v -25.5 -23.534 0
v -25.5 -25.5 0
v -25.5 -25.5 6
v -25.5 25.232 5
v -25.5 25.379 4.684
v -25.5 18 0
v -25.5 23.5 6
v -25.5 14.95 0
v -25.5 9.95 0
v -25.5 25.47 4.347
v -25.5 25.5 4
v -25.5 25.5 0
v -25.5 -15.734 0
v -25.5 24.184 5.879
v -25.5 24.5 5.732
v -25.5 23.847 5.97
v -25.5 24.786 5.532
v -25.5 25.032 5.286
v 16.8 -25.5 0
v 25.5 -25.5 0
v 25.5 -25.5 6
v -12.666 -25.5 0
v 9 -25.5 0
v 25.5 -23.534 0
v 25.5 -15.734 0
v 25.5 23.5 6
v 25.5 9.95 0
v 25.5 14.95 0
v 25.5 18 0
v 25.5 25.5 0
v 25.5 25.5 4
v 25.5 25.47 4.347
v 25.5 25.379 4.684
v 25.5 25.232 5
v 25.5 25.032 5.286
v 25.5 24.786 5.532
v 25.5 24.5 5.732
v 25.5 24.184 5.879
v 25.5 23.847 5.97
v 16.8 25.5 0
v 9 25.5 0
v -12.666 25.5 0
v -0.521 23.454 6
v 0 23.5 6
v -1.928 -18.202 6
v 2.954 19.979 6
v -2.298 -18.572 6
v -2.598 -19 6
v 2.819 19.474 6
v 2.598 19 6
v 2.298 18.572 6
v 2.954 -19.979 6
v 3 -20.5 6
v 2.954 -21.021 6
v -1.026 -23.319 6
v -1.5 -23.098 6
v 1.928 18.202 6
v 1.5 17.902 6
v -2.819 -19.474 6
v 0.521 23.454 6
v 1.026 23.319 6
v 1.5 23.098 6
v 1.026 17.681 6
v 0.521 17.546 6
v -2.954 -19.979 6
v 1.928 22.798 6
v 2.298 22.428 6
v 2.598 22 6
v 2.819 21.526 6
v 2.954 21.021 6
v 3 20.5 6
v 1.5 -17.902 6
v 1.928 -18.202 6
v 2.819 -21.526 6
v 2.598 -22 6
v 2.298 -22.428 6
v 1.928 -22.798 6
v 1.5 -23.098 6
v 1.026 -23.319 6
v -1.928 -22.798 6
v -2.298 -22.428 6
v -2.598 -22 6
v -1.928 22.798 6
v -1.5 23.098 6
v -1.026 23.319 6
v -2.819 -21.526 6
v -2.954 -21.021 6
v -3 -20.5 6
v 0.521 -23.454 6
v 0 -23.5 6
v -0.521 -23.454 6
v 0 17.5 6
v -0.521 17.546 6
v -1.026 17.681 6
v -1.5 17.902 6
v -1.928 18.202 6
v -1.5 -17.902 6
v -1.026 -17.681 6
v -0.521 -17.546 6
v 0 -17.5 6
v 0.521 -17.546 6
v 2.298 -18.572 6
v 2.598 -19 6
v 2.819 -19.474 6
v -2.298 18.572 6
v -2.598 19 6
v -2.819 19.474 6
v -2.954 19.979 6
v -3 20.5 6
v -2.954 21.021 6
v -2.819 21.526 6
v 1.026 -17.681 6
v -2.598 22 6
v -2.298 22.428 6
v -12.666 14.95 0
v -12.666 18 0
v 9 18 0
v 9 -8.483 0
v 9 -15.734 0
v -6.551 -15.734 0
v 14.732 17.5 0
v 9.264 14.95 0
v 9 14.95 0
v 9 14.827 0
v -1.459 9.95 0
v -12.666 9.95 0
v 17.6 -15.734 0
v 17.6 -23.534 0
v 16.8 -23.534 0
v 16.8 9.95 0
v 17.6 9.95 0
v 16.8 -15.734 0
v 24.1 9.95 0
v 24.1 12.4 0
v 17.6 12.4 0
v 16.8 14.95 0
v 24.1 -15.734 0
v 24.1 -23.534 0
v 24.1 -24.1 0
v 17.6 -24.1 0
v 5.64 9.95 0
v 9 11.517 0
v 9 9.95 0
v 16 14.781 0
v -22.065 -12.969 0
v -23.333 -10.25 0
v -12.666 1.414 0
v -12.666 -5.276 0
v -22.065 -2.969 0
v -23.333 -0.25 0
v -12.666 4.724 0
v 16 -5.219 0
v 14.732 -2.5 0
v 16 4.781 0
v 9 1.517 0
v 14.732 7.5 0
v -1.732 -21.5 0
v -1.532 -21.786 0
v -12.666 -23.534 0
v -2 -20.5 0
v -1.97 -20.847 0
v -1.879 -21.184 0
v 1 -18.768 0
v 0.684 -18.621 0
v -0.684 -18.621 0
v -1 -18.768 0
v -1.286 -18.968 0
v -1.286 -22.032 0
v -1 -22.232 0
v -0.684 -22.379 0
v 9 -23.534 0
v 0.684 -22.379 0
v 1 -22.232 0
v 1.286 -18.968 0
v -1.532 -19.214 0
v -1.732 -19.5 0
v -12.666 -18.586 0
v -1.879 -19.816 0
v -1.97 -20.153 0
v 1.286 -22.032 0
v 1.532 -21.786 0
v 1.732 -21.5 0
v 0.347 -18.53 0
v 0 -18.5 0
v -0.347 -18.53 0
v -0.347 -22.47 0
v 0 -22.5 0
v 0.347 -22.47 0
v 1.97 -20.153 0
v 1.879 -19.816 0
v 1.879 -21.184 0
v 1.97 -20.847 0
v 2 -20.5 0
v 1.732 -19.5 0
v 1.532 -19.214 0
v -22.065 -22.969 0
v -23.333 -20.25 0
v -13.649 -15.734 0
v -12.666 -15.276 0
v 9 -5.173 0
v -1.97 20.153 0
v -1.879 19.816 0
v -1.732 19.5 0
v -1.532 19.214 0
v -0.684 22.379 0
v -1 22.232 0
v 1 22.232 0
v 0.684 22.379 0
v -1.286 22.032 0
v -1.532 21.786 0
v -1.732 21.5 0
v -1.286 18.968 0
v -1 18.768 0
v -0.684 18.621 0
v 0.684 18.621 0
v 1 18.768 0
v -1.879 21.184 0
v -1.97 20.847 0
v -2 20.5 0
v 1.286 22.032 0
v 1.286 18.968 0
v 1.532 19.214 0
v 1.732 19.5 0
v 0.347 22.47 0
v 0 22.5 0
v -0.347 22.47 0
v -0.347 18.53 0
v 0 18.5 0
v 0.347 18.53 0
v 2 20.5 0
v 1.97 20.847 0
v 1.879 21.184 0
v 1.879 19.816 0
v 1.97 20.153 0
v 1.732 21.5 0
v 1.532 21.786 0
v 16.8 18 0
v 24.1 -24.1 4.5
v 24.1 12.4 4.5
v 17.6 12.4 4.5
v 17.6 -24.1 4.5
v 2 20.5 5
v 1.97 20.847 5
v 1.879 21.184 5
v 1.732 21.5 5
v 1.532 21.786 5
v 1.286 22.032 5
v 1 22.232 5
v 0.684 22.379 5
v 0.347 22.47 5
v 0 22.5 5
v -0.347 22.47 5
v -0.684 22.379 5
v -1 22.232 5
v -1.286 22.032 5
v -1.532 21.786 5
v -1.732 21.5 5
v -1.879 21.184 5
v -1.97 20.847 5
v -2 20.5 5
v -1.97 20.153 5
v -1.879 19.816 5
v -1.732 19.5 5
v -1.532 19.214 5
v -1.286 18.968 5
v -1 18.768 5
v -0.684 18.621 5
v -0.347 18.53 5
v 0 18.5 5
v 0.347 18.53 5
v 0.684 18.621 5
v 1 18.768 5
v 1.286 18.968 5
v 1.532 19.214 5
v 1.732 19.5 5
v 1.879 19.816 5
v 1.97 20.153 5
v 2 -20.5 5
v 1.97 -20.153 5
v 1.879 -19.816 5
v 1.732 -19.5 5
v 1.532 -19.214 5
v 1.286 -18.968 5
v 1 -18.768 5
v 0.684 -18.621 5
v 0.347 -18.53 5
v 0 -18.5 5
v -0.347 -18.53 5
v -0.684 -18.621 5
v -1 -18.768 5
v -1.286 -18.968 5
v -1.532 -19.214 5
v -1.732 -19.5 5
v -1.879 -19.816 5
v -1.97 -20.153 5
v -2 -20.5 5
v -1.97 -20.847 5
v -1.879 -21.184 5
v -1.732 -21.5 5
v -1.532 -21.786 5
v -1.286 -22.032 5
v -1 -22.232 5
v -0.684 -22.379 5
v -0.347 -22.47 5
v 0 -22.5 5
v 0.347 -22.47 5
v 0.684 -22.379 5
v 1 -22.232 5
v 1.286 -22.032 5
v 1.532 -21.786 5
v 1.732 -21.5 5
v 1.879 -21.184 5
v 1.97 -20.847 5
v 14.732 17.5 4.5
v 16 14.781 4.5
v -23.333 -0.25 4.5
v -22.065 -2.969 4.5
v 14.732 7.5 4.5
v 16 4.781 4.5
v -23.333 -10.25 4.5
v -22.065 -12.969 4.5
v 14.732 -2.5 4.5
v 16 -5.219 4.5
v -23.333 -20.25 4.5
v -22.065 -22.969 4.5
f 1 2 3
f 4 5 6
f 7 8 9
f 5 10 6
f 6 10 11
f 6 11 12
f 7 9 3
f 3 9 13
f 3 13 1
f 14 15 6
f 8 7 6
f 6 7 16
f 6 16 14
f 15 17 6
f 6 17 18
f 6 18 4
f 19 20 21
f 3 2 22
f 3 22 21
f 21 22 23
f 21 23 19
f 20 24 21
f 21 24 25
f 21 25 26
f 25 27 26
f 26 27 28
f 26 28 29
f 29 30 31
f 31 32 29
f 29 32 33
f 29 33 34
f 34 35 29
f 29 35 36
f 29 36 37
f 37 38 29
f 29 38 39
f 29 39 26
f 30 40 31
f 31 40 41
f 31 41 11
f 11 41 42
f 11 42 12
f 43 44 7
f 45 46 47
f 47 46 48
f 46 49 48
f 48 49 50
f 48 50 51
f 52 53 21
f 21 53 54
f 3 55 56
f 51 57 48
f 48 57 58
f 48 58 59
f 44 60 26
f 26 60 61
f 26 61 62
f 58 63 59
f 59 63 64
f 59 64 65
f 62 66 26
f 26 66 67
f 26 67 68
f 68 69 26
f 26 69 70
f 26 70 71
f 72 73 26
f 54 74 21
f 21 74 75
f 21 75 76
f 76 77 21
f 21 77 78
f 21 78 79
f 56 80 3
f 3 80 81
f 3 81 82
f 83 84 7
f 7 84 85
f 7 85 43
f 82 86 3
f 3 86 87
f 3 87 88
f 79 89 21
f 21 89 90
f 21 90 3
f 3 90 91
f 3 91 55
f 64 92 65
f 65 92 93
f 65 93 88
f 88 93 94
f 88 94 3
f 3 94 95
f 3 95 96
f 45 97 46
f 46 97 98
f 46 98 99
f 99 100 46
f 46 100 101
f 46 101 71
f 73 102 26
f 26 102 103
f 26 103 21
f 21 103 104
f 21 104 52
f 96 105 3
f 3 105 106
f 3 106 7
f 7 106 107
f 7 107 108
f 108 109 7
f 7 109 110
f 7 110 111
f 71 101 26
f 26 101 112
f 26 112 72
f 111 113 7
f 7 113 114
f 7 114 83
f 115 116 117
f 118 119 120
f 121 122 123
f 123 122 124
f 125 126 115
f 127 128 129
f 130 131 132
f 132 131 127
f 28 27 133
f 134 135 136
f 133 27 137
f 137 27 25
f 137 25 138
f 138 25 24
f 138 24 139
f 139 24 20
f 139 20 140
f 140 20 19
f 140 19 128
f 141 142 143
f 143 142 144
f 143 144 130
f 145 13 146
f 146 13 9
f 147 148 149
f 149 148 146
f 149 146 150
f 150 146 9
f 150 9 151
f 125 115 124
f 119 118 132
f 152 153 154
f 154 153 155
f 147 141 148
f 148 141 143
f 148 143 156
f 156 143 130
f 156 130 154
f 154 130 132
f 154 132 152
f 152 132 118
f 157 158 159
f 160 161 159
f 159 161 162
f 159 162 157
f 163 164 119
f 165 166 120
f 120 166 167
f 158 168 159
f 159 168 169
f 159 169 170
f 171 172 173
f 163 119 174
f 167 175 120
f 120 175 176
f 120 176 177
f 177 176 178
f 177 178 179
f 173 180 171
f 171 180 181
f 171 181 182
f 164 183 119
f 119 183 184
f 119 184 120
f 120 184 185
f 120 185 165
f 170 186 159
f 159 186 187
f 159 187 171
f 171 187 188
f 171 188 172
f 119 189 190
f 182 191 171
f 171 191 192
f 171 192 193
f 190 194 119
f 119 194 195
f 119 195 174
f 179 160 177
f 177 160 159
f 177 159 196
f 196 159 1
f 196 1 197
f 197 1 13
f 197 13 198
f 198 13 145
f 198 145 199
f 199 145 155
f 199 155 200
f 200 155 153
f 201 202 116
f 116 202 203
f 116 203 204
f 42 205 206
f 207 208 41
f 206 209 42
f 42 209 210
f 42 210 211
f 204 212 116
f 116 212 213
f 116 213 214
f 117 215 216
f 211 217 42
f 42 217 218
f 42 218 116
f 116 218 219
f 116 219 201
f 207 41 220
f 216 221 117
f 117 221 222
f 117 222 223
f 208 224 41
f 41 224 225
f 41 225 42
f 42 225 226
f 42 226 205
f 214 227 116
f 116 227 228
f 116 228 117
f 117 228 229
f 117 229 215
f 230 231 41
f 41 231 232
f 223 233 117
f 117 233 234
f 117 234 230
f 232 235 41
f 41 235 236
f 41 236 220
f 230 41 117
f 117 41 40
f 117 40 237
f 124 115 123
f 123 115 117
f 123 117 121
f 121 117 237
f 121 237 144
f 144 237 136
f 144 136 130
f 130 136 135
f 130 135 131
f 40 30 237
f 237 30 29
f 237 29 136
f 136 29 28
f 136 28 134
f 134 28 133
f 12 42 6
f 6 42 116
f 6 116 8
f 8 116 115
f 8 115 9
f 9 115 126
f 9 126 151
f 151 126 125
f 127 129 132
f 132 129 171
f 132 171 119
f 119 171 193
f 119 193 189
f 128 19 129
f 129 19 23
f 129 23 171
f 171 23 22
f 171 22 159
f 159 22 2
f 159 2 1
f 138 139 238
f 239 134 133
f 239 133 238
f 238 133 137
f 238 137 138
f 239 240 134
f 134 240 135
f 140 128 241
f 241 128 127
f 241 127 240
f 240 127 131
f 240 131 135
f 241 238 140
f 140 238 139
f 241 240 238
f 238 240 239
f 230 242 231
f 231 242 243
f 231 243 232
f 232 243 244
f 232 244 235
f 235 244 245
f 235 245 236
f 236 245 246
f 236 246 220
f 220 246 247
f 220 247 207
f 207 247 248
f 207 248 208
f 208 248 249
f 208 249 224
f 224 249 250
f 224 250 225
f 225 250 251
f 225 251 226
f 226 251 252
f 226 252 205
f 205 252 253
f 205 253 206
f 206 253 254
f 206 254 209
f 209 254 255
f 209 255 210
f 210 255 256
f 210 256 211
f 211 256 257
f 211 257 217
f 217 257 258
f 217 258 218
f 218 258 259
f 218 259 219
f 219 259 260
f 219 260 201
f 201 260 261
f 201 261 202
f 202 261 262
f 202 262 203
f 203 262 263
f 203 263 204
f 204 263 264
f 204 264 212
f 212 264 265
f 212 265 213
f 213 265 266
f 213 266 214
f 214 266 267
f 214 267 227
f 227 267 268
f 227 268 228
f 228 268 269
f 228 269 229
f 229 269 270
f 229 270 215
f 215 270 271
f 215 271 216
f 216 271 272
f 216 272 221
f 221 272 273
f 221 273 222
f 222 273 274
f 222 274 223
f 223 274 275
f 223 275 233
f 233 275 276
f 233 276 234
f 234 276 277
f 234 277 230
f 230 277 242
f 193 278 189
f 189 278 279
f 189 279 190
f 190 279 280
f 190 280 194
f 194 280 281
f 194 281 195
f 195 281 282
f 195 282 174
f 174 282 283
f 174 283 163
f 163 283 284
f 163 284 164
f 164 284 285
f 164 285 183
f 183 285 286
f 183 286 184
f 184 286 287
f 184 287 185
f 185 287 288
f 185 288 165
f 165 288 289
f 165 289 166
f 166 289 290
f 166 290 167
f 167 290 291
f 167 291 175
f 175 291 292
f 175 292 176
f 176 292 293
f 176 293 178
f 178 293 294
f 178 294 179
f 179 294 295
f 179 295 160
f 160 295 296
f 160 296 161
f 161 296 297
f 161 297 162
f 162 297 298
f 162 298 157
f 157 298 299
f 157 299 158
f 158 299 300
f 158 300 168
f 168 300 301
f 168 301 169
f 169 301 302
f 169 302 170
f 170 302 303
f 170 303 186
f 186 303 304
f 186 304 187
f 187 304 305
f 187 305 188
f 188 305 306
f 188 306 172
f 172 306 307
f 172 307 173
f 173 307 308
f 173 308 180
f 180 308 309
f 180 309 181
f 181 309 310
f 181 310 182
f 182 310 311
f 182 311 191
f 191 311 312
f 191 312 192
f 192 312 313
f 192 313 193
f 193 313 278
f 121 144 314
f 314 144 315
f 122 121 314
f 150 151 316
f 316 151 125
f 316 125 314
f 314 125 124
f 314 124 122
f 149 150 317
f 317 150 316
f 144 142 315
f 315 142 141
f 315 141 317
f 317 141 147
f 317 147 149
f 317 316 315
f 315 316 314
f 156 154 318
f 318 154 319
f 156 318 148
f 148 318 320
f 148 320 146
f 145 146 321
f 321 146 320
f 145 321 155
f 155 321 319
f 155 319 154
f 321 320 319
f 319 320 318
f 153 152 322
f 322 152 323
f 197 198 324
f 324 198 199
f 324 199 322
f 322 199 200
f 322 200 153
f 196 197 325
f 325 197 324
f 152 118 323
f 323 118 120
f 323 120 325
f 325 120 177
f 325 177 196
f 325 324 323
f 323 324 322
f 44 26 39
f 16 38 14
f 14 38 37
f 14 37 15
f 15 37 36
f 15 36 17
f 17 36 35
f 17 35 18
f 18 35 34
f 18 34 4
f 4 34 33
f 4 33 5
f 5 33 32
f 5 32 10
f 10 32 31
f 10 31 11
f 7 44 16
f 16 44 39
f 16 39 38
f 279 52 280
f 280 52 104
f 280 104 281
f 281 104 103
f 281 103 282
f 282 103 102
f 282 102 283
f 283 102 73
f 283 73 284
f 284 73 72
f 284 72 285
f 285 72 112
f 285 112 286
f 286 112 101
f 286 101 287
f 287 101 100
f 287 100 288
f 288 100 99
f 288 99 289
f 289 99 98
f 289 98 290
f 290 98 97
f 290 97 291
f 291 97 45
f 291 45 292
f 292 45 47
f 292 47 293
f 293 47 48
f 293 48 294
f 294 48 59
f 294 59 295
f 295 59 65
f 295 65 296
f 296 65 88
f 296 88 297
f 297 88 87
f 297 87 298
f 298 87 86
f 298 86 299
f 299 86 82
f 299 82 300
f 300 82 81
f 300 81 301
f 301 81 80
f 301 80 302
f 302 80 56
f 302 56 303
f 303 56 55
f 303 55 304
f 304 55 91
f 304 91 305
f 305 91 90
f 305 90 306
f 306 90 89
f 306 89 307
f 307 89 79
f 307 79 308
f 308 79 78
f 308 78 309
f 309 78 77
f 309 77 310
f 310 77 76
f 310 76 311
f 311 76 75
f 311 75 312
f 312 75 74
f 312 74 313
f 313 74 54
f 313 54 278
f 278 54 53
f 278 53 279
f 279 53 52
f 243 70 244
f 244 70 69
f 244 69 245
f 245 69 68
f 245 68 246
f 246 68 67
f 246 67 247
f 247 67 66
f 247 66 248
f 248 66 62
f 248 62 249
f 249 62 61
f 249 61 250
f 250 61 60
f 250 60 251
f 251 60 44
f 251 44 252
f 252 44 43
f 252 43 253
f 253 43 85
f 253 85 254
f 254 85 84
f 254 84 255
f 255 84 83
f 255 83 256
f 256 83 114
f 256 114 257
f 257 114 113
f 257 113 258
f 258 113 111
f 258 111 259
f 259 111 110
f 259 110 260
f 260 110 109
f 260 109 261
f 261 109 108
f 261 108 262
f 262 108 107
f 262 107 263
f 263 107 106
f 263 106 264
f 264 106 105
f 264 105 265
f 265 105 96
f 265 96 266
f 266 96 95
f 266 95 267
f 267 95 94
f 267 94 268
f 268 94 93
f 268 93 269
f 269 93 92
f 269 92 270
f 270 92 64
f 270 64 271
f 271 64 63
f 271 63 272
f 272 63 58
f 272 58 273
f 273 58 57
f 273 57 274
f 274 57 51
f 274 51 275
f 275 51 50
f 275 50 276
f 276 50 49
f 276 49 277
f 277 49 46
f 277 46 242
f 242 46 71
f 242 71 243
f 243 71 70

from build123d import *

# Parameters (mm, degrees)
ESBO_O1_W                = 51
ESBO_O1_H                = 51
RESSALTO_EXTRUS_O1_DEPTH = 6
ESBO_O2_W                = 6.5
ESBO_O2_H                = 36.5
CORTE_EXTRUS_O1_DEPTH    = 4.5
ESBO_O3_R                = 2
CORTE_EXTRUS_O2_DEPTH    = 37.558172821
CORTE_EXTRUS_O3_DEPTH    = 4.5
PADR_O_LINEAR1_COUNT     = 3
PADR_O_LINEAR1_PITCH     = 10
FILETE1_R                = 2
CHANFRO1_SIZE            = 1


with BuildPart() as part:
    # Esboço1 → Ressalto-extrusão1 (new body)
    with BuildSketch(Plane.XY):
        Rectangle(ESBO_O1_W, ESBO_O1_H)
    extrude(amount=RESSALTO_EXTRUS_O1_DEPTH)

    # Esboço2 → Corte-extrusão1 (cut)
    with BuildSketch(Plane(origin=(0, 0, 0), x_dir=(-1, 0, 0), z_dir=(0, 0, -1))):
        with Locations((-20.85, -5.85)):
            Rectangle(ESBO_O2_W, ESBO_O2_H)
    extrude(amount=-CORTE_EXTRUS_O1_DEPTH, mode=Mode.SUBTRACT)

    # Esboço3 → Corte-extrusão2 (cut, through all)
    with BuildSketch(Plane.XY.offset(6)):
        with Locations((0, -20.5)):
            Circle(ESBO_O3_R)
        with Locations((0, 20.5)):
            Circle(ESBO_O3_R)
    extrude(amount=-CORTE_EXTRUS_O2_DEPTH, mode=Mode.SUBTRACT)

    # Esboço4 → Corte-extrusão3 (cut)
    with BuildSketch(Plane(origin=(0, 0, 0), x_dir=(-1, 0, 0), z_dir=(0, 0, -1))):
        Polygon((-14.732145215, 17.5), (23.332781841, -0.249966993), (22.064927056, -2.968890354), (-16, 14.781076639), align=None)
    corte_extrus_o3 = extrude(amount=-CORTE_EXTRUS_O3_DEPTH, mode=Mode.SUBTRACT)

    # Padrão linear1: Corte-extrusão3 ×3
    with Locations(*[(0, -i * PADR_O_LINEAR1_PITCH, 0) for i in range(1, PADR_O_LINEAR1_COUNT)]):
        add(corte_extrus_o3, mode=Mode.SUBTRACT)

    # Filete1
    filete1_edges = [part.edges().sort_by_distance(p)[0] for p in [
        (0, 25.5, 6),
    ]]
    fillet(filete1_edges, radius=FILETE1_R)

    # Chanfro1
    chanfro1_edges = [part.edges().sort_by_distance(p)[0] for p in [
        (-2, -20.5, 6),
        (-2, 20.5, 6),
    ]]
    chamfer(chanfro1_edges, length=CHANFRO1_SIZE - 0.0001)  # a hair under: the kernel refuses the full size


solid = part.part
